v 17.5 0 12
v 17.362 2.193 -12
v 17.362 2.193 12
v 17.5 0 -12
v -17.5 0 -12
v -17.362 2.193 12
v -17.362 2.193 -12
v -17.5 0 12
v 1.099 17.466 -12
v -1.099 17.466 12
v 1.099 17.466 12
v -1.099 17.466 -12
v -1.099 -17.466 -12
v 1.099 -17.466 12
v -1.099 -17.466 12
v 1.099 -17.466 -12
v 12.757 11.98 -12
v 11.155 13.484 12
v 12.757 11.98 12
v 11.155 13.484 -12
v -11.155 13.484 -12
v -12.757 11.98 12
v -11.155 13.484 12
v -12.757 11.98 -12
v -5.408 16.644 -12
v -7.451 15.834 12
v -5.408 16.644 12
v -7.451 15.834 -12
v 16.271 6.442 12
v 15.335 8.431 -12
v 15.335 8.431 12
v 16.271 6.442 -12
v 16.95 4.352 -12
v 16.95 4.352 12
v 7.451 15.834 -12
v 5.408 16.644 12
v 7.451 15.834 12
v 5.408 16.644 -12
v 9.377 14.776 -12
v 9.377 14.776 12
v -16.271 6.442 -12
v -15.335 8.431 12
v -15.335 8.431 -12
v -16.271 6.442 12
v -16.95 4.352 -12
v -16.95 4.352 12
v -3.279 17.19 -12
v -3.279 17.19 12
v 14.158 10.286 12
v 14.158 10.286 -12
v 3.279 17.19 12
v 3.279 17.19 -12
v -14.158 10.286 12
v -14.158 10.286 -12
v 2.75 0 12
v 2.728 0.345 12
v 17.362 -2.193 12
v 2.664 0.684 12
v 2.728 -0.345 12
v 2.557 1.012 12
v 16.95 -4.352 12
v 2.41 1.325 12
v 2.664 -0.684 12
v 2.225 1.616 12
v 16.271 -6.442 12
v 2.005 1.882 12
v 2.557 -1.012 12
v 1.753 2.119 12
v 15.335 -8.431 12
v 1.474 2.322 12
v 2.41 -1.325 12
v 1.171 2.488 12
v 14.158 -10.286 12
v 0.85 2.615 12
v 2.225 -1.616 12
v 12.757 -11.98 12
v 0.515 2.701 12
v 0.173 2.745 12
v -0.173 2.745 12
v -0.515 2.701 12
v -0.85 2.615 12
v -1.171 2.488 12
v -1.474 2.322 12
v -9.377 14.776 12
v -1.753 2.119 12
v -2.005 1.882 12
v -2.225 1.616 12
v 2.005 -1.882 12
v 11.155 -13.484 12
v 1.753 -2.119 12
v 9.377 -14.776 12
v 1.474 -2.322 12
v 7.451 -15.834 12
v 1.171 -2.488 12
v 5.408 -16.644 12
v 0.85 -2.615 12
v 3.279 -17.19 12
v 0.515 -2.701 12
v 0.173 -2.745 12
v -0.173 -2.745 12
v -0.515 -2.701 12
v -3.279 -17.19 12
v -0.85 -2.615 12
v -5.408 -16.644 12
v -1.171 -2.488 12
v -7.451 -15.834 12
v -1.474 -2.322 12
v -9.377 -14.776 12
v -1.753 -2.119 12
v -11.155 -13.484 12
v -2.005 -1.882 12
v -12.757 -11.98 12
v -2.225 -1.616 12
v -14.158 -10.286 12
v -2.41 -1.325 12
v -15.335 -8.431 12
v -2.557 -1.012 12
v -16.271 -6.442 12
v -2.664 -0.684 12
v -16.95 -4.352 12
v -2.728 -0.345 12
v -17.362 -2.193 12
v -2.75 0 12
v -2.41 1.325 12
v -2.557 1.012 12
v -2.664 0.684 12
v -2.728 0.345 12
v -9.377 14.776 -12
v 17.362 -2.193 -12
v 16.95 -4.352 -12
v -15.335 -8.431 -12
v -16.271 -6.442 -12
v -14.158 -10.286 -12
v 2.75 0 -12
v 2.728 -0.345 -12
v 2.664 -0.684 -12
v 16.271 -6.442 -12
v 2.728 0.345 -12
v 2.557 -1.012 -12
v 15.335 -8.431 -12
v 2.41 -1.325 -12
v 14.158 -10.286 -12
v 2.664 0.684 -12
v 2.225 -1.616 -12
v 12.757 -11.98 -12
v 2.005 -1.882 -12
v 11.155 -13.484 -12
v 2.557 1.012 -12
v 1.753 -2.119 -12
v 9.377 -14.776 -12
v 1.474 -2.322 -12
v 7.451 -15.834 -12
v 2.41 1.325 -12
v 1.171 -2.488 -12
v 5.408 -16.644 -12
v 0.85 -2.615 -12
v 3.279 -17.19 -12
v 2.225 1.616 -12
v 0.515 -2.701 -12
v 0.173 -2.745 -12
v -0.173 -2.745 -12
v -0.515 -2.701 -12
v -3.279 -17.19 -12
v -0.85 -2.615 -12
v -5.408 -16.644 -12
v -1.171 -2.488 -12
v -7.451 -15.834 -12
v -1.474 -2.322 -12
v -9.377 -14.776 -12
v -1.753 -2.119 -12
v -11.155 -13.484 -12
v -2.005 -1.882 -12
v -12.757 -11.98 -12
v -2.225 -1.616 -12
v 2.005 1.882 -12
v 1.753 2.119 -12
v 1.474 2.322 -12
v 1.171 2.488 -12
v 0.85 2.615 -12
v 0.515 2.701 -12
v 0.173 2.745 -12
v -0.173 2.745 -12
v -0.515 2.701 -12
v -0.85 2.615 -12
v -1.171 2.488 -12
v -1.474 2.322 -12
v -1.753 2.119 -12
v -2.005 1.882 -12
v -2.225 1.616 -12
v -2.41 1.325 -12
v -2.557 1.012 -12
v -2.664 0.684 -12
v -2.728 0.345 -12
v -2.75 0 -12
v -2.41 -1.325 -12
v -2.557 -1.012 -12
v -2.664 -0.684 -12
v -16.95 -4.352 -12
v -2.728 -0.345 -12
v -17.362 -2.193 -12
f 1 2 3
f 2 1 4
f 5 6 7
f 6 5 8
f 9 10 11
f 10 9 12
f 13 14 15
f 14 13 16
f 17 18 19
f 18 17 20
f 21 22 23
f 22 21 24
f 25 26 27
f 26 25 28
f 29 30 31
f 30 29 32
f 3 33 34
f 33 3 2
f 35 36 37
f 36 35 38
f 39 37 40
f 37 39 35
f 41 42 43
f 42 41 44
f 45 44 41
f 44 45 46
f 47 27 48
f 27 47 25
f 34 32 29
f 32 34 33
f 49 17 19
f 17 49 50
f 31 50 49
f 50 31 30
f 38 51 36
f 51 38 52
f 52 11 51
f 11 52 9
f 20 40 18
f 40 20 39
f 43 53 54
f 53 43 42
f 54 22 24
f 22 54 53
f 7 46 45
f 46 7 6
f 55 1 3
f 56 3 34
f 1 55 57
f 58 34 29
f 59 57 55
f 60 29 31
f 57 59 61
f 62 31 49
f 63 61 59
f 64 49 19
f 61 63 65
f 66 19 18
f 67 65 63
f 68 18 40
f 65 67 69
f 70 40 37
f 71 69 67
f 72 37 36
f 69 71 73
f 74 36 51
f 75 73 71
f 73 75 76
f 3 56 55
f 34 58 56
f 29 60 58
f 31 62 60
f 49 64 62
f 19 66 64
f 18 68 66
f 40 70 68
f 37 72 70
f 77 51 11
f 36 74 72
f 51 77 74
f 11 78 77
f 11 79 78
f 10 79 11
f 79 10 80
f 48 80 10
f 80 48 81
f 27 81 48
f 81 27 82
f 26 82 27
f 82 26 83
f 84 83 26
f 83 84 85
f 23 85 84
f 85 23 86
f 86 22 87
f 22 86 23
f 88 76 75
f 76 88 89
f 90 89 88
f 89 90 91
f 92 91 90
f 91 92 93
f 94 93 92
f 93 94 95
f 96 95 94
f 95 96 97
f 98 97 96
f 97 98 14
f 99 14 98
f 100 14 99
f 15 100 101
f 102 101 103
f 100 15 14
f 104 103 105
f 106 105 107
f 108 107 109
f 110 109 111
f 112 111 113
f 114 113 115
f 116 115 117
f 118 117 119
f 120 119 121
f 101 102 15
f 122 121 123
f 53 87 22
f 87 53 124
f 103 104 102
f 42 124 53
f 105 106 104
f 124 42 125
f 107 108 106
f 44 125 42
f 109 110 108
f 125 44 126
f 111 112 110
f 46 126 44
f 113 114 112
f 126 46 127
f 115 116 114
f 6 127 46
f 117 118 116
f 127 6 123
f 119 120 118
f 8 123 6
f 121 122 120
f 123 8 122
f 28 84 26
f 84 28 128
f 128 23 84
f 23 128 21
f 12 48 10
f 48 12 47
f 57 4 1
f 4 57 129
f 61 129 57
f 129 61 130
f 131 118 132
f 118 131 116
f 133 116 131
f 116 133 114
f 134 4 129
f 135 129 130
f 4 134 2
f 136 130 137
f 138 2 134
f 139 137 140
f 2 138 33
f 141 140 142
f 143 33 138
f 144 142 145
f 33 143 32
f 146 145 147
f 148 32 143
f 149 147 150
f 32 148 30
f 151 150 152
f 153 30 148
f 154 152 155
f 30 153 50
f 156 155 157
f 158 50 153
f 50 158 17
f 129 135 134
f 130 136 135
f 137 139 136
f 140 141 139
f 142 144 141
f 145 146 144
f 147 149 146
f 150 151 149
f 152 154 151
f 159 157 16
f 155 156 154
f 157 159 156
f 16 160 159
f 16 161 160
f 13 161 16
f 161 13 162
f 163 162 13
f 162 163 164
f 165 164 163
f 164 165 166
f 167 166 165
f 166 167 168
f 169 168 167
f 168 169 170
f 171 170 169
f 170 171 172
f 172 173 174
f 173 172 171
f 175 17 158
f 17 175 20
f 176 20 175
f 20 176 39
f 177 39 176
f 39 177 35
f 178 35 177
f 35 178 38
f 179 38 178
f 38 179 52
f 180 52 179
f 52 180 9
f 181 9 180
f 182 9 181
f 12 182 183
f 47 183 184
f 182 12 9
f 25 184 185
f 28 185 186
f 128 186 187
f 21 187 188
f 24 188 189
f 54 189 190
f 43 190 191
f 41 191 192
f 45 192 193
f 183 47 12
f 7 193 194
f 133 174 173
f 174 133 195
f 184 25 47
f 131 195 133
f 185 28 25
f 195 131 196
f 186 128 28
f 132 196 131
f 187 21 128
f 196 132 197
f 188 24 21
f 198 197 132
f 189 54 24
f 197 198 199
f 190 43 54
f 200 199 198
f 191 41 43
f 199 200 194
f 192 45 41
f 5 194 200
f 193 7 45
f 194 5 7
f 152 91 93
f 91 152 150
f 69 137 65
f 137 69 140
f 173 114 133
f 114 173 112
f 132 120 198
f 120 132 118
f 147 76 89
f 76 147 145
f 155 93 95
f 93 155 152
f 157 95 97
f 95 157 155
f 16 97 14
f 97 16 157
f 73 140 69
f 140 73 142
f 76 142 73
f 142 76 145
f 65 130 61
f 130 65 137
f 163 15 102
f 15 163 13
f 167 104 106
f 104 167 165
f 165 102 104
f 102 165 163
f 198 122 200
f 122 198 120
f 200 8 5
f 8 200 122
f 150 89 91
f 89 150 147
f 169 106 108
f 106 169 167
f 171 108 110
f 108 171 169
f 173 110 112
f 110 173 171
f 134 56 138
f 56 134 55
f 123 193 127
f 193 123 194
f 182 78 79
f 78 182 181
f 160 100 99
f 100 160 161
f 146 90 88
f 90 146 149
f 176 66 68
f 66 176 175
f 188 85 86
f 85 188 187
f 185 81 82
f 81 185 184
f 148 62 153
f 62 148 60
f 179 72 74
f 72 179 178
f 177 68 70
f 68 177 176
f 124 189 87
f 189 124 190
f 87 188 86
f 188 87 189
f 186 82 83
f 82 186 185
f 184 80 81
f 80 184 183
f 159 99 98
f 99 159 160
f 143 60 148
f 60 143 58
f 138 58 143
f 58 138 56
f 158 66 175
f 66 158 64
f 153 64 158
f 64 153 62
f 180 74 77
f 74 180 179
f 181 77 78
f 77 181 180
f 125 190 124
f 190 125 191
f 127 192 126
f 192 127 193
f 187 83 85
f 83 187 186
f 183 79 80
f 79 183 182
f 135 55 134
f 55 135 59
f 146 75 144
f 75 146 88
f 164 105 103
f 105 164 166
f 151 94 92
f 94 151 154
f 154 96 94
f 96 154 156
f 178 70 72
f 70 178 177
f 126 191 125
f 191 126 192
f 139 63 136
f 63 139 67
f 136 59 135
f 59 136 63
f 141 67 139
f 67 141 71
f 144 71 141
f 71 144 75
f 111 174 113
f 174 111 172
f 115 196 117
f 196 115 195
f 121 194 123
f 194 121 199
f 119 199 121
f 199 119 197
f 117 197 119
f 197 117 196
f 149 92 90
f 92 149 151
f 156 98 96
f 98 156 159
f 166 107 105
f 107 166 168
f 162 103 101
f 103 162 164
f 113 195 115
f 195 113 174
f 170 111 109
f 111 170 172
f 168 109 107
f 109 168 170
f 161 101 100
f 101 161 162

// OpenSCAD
$fn = 50;


difference() {
	union() {
		translate(v = [0, 0, -12.0000000000]) {
			cylinder(h = 24, r = 17.5000000000);
		}
	}
	union() {
		translate(v = [0, 0, -100.0000000000]) {
			cylinder(h = 200, r = 2.7500000000);
		}
	}
}
